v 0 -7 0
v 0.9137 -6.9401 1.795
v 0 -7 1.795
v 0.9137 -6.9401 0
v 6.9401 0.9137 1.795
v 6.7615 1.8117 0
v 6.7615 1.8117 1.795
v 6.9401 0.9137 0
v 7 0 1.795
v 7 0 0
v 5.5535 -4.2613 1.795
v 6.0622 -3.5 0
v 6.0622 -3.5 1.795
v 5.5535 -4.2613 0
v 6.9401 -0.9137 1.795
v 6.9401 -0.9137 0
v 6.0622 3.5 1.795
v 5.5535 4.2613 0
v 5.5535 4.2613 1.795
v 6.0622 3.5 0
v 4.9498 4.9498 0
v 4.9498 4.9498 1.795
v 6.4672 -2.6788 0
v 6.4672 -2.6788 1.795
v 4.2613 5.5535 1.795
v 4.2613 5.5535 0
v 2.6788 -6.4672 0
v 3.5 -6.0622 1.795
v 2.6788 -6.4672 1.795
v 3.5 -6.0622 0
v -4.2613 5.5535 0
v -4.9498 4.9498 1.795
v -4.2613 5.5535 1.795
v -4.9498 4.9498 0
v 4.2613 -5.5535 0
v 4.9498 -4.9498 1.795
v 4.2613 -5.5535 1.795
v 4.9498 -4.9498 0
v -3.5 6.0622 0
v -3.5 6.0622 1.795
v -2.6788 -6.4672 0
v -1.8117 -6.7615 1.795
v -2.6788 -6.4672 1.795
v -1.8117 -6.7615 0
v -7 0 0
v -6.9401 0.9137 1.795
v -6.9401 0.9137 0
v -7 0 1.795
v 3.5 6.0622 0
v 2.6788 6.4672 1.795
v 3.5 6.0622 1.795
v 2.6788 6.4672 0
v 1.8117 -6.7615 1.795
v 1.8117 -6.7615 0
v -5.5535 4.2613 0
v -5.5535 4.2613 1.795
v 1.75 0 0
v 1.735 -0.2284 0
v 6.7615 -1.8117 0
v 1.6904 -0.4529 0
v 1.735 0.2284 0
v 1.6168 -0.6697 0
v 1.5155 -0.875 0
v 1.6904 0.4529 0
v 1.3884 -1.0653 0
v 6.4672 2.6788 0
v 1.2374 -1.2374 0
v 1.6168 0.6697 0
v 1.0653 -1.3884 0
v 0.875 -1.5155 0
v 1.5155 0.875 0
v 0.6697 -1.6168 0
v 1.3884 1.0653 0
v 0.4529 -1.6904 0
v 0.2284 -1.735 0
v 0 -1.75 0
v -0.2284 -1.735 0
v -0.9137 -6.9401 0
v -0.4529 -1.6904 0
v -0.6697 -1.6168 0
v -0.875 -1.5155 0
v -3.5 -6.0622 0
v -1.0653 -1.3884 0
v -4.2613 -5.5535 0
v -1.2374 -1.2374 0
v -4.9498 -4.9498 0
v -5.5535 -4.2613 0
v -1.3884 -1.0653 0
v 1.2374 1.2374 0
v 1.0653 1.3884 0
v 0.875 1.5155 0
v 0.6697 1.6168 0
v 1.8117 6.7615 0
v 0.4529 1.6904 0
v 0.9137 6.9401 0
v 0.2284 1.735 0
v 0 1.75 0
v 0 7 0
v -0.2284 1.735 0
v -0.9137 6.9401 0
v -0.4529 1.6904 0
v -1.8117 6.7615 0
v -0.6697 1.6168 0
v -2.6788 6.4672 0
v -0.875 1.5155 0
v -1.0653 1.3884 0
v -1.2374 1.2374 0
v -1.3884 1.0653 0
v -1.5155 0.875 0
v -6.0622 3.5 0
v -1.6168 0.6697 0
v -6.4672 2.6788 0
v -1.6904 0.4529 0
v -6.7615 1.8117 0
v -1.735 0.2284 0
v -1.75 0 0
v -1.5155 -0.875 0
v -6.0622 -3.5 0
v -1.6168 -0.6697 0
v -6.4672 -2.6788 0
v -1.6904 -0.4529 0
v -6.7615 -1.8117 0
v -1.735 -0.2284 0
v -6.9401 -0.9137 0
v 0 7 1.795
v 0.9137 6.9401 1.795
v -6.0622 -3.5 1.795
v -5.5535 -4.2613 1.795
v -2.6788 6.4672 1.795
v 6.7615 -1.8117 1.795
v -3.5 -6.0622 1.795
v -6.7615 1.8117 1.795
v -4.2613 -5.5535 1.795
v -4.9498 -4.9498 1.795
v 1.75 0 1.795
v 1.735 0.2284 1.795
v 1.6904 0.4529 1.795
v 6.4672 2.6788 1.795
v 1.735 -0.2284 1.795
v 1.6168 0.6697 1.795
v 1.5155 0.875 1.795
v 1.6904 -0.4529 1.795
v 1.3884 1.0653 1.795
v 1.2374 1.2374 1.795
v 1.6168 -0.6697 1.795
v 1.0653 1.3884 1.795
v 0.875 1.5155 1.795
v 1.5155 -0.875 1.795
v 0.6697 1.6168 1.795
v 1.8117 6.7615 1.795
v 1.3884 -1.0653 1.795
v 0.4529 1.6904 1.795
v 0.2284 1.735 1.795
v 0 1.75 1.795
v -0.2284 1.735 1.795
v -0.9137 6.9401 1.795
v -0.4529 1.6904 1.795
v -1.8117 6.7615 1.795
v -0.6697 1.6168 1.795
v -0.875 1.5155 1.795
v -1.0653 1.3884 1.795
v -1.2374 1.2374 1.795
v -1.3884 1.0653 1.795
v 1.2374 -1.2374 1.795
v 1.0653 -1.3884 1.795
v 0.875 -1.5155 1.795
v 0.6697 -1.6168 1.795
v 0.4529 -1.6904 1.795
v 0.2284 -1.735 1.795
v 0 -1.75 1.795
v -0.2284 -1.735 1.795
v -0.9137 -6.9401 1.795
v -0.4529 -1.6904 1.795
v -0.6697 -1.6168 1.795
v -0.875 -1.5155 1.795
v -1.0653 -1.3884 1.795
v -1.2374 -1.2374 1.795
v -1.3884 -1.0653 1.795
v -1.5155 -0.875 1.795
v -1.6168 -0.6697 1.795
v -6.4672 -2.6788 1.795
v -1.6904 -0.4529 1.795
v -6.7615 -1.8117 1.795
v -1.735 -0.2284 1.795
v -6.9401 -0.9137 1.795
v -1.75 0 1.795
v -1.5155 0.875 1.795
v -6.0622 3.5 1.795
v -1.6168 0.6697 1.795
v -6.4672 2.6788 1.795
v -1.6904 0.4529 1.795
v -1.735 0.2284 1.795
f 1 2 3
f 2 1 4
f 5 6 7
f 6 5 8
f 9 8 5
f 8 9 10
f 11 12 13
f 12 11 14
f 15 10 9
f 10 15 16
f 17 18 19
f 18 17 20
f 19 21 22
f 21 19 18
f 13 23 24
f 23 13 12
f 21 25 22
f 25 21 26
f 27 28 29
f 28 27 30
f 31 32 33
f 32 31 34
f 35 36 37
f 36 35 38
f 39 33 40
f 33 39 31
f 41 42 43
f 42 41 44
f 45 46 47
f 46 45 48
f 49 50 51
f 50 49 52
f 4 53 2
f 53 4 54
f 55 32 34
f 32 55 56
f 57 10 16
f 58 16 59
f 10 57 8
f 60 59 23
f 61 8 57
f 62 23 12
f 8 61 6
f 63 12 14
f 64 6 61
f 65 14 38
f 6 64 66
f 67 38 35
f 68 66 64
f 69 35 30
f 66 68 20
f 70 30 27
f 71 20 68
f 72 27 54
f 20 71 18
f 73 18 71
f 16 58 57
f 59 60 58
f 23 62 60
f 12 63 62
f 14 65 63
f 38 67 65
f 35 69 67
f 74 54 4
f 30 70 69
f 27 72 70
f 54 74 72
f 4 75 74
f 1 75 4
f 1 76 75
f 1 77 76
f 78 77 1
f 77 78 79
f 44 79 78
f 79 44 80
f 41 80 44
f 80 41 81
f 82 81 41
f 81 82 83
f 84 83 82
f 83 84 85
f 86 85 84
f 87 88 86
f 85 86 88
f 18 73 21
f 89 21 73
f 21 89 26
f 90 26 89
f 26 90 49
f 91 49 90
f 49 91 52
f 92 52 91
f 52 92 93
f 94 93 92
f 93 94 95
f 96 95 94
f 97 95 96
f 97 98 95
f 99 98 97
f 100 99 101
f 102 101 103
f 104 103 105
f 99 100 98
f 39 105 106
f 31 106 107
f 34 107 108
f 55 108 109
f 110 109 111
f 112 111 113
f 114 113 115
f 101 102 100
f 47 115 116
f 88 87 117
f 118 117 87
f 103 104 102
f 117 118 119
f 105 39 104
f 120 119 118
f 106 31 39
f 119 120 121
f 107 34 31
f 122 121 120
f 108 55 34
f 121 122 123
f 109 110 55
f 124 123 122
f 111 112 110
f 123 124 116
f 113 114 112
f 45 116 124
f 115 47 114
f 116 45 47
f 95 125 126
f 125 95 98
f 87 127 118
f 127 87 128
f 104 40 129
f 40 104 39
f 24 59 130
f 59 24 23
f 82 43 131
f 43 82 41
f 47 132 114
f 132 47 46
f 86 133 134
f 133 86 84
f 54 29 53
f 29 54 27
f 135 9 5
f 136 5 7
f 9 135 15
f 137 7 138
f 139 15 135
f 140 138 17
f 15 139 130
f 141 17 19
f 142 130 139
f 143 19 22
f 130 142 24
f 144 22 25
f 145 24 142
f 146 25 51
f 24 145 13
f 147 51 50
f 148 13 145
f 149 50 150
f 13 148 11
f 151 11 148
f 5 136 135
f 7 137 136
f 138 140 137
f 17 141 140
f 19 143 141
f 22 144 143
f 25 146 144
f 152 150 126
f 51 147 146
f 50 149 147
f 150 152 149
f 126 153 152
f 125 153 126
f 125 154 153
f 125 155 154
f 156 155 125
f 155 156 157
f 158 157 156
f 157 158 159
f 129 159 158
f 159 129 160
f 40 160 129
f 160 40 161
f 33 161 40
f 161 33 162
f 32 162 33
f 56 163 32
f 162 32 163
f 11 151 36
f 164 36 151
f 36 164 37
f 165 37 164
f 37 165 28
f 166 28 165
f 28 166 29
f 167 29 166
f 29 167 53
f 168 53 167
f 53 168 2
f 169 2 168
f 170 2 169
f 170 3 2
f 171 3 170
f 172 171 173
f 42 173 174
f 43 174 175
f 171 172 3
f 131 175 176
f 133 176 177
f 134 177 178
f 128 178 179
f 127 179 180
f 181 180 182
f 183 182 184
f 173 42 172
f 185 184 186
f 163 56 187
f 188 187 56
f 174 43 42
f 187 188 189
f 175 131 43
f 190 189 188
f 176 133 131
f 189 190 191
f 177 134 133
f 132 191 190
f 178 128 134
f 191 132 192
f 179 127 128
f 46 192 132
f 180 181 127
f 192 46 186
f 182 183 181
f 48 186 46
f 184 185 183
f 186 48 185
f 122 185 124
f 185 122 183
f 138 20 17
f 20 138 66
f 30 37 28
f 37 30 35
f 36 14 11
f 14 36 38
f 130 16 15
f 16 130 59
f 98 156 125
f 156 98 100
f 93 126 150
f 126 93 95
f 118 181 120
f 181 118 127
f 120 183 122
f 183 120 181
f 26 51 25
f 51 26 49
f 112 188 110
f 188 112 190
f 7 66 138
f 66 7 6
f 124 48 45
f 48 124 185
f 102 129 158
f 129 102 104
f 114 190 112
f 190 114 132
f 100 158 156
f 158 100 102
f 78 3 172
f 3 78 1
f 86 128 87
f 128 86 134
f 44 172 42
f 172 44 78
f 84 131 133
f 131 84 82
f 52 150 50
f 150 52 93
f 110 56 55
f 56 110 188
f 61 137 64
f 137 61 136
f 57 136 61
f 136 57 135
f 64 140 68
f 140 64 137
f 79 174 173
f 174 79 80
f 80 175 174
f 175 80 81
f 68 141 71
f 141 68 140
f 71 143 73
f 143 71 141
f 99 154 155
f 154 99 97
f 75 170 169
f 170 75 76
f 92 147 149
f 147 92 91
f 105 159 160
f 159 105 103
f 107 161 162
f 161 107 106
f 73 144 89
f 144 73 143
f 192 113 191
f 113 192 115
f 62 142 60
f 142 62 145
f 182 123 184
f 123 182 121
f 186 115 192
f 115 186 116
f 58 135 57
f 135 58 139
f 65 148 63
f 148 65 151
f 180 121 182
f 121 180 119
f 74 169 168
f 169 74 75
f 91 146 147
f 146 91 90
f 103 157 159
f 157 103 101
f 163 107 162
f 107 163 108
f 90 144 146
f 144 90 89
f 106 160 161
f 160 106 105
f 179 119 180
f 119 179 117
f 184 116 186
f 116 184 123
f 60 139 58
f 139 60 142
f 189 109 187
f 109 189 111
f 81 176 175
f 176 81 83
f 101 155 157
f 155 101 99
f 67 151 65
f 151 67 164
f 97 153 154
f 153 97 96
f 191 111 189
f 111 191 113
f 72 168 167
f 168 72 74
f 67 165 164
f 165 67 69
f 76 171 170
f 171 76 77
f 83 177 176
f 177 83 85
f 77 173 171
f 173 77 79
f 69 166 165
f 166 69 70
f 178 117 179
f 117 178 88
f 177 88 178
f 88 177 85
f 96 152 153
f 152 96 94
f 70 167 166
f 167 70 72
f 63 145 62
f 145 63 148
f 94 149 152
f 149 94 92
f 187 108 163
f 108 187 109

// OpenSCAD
// file: parameters.scad
// =============================================================================
// Gen-M Dual-stator sandwich AFPM — WOUND-AWARE parameters (HARD GATE)
// Evolution of withdrawn Gen-J. Magnet face ↔ WOUND coil face ≥ 0.8 mm.
// =============================================================================

// --- Wire / wind budget (26 AWG, ~1 lb spool) ---------------------------------
wire_awg            = 26;
wire_od             = 0.45;     // insulated OD mm (audit assumption)
turns               = 120;      // design turns per pancake
fill                = 0.70;     // packing factor for build estimate
layers_per_face     = 3;        // axial layers budgeted proud of EACH flange
wind_build_axial    = layers_per_face * wire_od * fill;   // 3*0.45*0.7 = 0.945 mm
wind_build_radial   = 2 * wire_od * fill;                 // ~0.63 mm radial overfill budget

// --- Pancake former (bare STL) -----------------------------------------------
coil_id_r           = 24.0;
coil_od_r           = 56.0;
span_deg            = 34.0;     // 9 stations × 40° pitch, 34° copper span
former_web          = 3.2;      // core / web between flanges
flange_t            = 1.0;
wall                = 1.2;      // ≥0.8; load wall 1.2
slot_w              = 2.4;
mount_hole          = 3.5;      // M3 clear
tab_len             = 7.0;

former_bare_h       = former_web + 2 * flange_t;          // 5.2 mm
coil_envelope_h     = former_bare_h + 2 * wind_build_axial; // 7.09 mm

// --- Running clearance (magnet face → WOUND face) ----------------------------
run_clear           = 0.85;     // ≥ 0.8 mm after stated wind
// Front wind stands proud of stator face by wind_build_axial when bay seats
// bare former + back-face copper. Spacer sets magnet → stator face:
gap_spacer_h        = run_clear + wind_build_axial;       // 1.795 ≈ 1.80 mm
// ⇒ magnet_to_wound = gap_spacer_h - wind_build_axial = run_clear = 0.85 mm PASS

// --- Stator bay (sized to WOUND radial + axial, not bare former) -------------
coil_stations       = 9;        // 9+9; document if 12+12 won't one-plate
bay_r_in            = coil_id_r - 2.0 - wind_build_radial;  // ~21.37
bay_r_out           = coil_od_r + 2.0 + wind_build_radial;  // ~58.63
bay_span            = span_deg + 4.0;                       // circumferential clear
bay_offset          = 2.0;      // extra pocket clearance beyond wound outline
// Seat bare former + back wind; front wind proud of stator face
bay_depth           = former_bare_h + wind_build_axial;     // 6.145 mm
stator_back_web     = 2.5;
stator_thick        = bay_depth + stator_back_web;          // ~8.65 mm
stator_od           = 152.0;
shaft_clear_stator  = 40.0;
coil_mount_r        = 32.0;

// --- Rotor (dual-face Halbach) -----------------------------------------------
large_pocket_d      = 20.3;
small_pocket_d      = 5.3;
pocket_h            = 5.2;
large_n             = 8;
R_large             = 52.0;
R_small             = [40.0, 52.0, 64.0];
carrier_od          = 148.0;
carrier_thick       = 12.0;     // 5.2 + 1.6 web + 5.2
hub_h               = 10.0;
hub_od              = 30.0;

// --- Modular MAX interface ---------------------------------------------------
shaft_bore          = 8.35;
bearing_d           = 21.85;
bearing_h           = 7.2;
m3_clear            = 3.5;
bolt_r_inner        = 36.0;
bolt_n_inner        = 6;
outer_bolt_r        = 70.0;
outer_bolt_n        = 6;
flange_bolt_r       = 72.0;     // Gen-E family
flange_bolt_n       = 6;
brace_r             = 68.0;
brace_d             = 4.3;
brace_n             = 4;

// --- Gap spacer pad ----------------------------------------------------------
spacer_pad_od       = 14.0;
spacer_pad_id       = m3_clear;

// --- Endbell -----------------------------------------------------------------
endbell_od          = 152.0;
endbell_thick       = 8.0;
endbell_shaft_clear = 10.0;

$fn = 64;
// main file
// Gen-M gap spacer PAD — print ×12 (6 per side)
// Height = run_clear + wind_build_axial so magnet→WOUND = run_clear after wind.
// DO NOT size from bare former.
include <parameters.scad>;
$fn = 48;
h = gap_spacer_h; // 1.795 mm
difference() {
    cylinder(d=spacer_pad_od, h=h);
    translate([0, 0, -0.1]) cylinder(d=spacer_pad_id, h=h + 0.2);
}
